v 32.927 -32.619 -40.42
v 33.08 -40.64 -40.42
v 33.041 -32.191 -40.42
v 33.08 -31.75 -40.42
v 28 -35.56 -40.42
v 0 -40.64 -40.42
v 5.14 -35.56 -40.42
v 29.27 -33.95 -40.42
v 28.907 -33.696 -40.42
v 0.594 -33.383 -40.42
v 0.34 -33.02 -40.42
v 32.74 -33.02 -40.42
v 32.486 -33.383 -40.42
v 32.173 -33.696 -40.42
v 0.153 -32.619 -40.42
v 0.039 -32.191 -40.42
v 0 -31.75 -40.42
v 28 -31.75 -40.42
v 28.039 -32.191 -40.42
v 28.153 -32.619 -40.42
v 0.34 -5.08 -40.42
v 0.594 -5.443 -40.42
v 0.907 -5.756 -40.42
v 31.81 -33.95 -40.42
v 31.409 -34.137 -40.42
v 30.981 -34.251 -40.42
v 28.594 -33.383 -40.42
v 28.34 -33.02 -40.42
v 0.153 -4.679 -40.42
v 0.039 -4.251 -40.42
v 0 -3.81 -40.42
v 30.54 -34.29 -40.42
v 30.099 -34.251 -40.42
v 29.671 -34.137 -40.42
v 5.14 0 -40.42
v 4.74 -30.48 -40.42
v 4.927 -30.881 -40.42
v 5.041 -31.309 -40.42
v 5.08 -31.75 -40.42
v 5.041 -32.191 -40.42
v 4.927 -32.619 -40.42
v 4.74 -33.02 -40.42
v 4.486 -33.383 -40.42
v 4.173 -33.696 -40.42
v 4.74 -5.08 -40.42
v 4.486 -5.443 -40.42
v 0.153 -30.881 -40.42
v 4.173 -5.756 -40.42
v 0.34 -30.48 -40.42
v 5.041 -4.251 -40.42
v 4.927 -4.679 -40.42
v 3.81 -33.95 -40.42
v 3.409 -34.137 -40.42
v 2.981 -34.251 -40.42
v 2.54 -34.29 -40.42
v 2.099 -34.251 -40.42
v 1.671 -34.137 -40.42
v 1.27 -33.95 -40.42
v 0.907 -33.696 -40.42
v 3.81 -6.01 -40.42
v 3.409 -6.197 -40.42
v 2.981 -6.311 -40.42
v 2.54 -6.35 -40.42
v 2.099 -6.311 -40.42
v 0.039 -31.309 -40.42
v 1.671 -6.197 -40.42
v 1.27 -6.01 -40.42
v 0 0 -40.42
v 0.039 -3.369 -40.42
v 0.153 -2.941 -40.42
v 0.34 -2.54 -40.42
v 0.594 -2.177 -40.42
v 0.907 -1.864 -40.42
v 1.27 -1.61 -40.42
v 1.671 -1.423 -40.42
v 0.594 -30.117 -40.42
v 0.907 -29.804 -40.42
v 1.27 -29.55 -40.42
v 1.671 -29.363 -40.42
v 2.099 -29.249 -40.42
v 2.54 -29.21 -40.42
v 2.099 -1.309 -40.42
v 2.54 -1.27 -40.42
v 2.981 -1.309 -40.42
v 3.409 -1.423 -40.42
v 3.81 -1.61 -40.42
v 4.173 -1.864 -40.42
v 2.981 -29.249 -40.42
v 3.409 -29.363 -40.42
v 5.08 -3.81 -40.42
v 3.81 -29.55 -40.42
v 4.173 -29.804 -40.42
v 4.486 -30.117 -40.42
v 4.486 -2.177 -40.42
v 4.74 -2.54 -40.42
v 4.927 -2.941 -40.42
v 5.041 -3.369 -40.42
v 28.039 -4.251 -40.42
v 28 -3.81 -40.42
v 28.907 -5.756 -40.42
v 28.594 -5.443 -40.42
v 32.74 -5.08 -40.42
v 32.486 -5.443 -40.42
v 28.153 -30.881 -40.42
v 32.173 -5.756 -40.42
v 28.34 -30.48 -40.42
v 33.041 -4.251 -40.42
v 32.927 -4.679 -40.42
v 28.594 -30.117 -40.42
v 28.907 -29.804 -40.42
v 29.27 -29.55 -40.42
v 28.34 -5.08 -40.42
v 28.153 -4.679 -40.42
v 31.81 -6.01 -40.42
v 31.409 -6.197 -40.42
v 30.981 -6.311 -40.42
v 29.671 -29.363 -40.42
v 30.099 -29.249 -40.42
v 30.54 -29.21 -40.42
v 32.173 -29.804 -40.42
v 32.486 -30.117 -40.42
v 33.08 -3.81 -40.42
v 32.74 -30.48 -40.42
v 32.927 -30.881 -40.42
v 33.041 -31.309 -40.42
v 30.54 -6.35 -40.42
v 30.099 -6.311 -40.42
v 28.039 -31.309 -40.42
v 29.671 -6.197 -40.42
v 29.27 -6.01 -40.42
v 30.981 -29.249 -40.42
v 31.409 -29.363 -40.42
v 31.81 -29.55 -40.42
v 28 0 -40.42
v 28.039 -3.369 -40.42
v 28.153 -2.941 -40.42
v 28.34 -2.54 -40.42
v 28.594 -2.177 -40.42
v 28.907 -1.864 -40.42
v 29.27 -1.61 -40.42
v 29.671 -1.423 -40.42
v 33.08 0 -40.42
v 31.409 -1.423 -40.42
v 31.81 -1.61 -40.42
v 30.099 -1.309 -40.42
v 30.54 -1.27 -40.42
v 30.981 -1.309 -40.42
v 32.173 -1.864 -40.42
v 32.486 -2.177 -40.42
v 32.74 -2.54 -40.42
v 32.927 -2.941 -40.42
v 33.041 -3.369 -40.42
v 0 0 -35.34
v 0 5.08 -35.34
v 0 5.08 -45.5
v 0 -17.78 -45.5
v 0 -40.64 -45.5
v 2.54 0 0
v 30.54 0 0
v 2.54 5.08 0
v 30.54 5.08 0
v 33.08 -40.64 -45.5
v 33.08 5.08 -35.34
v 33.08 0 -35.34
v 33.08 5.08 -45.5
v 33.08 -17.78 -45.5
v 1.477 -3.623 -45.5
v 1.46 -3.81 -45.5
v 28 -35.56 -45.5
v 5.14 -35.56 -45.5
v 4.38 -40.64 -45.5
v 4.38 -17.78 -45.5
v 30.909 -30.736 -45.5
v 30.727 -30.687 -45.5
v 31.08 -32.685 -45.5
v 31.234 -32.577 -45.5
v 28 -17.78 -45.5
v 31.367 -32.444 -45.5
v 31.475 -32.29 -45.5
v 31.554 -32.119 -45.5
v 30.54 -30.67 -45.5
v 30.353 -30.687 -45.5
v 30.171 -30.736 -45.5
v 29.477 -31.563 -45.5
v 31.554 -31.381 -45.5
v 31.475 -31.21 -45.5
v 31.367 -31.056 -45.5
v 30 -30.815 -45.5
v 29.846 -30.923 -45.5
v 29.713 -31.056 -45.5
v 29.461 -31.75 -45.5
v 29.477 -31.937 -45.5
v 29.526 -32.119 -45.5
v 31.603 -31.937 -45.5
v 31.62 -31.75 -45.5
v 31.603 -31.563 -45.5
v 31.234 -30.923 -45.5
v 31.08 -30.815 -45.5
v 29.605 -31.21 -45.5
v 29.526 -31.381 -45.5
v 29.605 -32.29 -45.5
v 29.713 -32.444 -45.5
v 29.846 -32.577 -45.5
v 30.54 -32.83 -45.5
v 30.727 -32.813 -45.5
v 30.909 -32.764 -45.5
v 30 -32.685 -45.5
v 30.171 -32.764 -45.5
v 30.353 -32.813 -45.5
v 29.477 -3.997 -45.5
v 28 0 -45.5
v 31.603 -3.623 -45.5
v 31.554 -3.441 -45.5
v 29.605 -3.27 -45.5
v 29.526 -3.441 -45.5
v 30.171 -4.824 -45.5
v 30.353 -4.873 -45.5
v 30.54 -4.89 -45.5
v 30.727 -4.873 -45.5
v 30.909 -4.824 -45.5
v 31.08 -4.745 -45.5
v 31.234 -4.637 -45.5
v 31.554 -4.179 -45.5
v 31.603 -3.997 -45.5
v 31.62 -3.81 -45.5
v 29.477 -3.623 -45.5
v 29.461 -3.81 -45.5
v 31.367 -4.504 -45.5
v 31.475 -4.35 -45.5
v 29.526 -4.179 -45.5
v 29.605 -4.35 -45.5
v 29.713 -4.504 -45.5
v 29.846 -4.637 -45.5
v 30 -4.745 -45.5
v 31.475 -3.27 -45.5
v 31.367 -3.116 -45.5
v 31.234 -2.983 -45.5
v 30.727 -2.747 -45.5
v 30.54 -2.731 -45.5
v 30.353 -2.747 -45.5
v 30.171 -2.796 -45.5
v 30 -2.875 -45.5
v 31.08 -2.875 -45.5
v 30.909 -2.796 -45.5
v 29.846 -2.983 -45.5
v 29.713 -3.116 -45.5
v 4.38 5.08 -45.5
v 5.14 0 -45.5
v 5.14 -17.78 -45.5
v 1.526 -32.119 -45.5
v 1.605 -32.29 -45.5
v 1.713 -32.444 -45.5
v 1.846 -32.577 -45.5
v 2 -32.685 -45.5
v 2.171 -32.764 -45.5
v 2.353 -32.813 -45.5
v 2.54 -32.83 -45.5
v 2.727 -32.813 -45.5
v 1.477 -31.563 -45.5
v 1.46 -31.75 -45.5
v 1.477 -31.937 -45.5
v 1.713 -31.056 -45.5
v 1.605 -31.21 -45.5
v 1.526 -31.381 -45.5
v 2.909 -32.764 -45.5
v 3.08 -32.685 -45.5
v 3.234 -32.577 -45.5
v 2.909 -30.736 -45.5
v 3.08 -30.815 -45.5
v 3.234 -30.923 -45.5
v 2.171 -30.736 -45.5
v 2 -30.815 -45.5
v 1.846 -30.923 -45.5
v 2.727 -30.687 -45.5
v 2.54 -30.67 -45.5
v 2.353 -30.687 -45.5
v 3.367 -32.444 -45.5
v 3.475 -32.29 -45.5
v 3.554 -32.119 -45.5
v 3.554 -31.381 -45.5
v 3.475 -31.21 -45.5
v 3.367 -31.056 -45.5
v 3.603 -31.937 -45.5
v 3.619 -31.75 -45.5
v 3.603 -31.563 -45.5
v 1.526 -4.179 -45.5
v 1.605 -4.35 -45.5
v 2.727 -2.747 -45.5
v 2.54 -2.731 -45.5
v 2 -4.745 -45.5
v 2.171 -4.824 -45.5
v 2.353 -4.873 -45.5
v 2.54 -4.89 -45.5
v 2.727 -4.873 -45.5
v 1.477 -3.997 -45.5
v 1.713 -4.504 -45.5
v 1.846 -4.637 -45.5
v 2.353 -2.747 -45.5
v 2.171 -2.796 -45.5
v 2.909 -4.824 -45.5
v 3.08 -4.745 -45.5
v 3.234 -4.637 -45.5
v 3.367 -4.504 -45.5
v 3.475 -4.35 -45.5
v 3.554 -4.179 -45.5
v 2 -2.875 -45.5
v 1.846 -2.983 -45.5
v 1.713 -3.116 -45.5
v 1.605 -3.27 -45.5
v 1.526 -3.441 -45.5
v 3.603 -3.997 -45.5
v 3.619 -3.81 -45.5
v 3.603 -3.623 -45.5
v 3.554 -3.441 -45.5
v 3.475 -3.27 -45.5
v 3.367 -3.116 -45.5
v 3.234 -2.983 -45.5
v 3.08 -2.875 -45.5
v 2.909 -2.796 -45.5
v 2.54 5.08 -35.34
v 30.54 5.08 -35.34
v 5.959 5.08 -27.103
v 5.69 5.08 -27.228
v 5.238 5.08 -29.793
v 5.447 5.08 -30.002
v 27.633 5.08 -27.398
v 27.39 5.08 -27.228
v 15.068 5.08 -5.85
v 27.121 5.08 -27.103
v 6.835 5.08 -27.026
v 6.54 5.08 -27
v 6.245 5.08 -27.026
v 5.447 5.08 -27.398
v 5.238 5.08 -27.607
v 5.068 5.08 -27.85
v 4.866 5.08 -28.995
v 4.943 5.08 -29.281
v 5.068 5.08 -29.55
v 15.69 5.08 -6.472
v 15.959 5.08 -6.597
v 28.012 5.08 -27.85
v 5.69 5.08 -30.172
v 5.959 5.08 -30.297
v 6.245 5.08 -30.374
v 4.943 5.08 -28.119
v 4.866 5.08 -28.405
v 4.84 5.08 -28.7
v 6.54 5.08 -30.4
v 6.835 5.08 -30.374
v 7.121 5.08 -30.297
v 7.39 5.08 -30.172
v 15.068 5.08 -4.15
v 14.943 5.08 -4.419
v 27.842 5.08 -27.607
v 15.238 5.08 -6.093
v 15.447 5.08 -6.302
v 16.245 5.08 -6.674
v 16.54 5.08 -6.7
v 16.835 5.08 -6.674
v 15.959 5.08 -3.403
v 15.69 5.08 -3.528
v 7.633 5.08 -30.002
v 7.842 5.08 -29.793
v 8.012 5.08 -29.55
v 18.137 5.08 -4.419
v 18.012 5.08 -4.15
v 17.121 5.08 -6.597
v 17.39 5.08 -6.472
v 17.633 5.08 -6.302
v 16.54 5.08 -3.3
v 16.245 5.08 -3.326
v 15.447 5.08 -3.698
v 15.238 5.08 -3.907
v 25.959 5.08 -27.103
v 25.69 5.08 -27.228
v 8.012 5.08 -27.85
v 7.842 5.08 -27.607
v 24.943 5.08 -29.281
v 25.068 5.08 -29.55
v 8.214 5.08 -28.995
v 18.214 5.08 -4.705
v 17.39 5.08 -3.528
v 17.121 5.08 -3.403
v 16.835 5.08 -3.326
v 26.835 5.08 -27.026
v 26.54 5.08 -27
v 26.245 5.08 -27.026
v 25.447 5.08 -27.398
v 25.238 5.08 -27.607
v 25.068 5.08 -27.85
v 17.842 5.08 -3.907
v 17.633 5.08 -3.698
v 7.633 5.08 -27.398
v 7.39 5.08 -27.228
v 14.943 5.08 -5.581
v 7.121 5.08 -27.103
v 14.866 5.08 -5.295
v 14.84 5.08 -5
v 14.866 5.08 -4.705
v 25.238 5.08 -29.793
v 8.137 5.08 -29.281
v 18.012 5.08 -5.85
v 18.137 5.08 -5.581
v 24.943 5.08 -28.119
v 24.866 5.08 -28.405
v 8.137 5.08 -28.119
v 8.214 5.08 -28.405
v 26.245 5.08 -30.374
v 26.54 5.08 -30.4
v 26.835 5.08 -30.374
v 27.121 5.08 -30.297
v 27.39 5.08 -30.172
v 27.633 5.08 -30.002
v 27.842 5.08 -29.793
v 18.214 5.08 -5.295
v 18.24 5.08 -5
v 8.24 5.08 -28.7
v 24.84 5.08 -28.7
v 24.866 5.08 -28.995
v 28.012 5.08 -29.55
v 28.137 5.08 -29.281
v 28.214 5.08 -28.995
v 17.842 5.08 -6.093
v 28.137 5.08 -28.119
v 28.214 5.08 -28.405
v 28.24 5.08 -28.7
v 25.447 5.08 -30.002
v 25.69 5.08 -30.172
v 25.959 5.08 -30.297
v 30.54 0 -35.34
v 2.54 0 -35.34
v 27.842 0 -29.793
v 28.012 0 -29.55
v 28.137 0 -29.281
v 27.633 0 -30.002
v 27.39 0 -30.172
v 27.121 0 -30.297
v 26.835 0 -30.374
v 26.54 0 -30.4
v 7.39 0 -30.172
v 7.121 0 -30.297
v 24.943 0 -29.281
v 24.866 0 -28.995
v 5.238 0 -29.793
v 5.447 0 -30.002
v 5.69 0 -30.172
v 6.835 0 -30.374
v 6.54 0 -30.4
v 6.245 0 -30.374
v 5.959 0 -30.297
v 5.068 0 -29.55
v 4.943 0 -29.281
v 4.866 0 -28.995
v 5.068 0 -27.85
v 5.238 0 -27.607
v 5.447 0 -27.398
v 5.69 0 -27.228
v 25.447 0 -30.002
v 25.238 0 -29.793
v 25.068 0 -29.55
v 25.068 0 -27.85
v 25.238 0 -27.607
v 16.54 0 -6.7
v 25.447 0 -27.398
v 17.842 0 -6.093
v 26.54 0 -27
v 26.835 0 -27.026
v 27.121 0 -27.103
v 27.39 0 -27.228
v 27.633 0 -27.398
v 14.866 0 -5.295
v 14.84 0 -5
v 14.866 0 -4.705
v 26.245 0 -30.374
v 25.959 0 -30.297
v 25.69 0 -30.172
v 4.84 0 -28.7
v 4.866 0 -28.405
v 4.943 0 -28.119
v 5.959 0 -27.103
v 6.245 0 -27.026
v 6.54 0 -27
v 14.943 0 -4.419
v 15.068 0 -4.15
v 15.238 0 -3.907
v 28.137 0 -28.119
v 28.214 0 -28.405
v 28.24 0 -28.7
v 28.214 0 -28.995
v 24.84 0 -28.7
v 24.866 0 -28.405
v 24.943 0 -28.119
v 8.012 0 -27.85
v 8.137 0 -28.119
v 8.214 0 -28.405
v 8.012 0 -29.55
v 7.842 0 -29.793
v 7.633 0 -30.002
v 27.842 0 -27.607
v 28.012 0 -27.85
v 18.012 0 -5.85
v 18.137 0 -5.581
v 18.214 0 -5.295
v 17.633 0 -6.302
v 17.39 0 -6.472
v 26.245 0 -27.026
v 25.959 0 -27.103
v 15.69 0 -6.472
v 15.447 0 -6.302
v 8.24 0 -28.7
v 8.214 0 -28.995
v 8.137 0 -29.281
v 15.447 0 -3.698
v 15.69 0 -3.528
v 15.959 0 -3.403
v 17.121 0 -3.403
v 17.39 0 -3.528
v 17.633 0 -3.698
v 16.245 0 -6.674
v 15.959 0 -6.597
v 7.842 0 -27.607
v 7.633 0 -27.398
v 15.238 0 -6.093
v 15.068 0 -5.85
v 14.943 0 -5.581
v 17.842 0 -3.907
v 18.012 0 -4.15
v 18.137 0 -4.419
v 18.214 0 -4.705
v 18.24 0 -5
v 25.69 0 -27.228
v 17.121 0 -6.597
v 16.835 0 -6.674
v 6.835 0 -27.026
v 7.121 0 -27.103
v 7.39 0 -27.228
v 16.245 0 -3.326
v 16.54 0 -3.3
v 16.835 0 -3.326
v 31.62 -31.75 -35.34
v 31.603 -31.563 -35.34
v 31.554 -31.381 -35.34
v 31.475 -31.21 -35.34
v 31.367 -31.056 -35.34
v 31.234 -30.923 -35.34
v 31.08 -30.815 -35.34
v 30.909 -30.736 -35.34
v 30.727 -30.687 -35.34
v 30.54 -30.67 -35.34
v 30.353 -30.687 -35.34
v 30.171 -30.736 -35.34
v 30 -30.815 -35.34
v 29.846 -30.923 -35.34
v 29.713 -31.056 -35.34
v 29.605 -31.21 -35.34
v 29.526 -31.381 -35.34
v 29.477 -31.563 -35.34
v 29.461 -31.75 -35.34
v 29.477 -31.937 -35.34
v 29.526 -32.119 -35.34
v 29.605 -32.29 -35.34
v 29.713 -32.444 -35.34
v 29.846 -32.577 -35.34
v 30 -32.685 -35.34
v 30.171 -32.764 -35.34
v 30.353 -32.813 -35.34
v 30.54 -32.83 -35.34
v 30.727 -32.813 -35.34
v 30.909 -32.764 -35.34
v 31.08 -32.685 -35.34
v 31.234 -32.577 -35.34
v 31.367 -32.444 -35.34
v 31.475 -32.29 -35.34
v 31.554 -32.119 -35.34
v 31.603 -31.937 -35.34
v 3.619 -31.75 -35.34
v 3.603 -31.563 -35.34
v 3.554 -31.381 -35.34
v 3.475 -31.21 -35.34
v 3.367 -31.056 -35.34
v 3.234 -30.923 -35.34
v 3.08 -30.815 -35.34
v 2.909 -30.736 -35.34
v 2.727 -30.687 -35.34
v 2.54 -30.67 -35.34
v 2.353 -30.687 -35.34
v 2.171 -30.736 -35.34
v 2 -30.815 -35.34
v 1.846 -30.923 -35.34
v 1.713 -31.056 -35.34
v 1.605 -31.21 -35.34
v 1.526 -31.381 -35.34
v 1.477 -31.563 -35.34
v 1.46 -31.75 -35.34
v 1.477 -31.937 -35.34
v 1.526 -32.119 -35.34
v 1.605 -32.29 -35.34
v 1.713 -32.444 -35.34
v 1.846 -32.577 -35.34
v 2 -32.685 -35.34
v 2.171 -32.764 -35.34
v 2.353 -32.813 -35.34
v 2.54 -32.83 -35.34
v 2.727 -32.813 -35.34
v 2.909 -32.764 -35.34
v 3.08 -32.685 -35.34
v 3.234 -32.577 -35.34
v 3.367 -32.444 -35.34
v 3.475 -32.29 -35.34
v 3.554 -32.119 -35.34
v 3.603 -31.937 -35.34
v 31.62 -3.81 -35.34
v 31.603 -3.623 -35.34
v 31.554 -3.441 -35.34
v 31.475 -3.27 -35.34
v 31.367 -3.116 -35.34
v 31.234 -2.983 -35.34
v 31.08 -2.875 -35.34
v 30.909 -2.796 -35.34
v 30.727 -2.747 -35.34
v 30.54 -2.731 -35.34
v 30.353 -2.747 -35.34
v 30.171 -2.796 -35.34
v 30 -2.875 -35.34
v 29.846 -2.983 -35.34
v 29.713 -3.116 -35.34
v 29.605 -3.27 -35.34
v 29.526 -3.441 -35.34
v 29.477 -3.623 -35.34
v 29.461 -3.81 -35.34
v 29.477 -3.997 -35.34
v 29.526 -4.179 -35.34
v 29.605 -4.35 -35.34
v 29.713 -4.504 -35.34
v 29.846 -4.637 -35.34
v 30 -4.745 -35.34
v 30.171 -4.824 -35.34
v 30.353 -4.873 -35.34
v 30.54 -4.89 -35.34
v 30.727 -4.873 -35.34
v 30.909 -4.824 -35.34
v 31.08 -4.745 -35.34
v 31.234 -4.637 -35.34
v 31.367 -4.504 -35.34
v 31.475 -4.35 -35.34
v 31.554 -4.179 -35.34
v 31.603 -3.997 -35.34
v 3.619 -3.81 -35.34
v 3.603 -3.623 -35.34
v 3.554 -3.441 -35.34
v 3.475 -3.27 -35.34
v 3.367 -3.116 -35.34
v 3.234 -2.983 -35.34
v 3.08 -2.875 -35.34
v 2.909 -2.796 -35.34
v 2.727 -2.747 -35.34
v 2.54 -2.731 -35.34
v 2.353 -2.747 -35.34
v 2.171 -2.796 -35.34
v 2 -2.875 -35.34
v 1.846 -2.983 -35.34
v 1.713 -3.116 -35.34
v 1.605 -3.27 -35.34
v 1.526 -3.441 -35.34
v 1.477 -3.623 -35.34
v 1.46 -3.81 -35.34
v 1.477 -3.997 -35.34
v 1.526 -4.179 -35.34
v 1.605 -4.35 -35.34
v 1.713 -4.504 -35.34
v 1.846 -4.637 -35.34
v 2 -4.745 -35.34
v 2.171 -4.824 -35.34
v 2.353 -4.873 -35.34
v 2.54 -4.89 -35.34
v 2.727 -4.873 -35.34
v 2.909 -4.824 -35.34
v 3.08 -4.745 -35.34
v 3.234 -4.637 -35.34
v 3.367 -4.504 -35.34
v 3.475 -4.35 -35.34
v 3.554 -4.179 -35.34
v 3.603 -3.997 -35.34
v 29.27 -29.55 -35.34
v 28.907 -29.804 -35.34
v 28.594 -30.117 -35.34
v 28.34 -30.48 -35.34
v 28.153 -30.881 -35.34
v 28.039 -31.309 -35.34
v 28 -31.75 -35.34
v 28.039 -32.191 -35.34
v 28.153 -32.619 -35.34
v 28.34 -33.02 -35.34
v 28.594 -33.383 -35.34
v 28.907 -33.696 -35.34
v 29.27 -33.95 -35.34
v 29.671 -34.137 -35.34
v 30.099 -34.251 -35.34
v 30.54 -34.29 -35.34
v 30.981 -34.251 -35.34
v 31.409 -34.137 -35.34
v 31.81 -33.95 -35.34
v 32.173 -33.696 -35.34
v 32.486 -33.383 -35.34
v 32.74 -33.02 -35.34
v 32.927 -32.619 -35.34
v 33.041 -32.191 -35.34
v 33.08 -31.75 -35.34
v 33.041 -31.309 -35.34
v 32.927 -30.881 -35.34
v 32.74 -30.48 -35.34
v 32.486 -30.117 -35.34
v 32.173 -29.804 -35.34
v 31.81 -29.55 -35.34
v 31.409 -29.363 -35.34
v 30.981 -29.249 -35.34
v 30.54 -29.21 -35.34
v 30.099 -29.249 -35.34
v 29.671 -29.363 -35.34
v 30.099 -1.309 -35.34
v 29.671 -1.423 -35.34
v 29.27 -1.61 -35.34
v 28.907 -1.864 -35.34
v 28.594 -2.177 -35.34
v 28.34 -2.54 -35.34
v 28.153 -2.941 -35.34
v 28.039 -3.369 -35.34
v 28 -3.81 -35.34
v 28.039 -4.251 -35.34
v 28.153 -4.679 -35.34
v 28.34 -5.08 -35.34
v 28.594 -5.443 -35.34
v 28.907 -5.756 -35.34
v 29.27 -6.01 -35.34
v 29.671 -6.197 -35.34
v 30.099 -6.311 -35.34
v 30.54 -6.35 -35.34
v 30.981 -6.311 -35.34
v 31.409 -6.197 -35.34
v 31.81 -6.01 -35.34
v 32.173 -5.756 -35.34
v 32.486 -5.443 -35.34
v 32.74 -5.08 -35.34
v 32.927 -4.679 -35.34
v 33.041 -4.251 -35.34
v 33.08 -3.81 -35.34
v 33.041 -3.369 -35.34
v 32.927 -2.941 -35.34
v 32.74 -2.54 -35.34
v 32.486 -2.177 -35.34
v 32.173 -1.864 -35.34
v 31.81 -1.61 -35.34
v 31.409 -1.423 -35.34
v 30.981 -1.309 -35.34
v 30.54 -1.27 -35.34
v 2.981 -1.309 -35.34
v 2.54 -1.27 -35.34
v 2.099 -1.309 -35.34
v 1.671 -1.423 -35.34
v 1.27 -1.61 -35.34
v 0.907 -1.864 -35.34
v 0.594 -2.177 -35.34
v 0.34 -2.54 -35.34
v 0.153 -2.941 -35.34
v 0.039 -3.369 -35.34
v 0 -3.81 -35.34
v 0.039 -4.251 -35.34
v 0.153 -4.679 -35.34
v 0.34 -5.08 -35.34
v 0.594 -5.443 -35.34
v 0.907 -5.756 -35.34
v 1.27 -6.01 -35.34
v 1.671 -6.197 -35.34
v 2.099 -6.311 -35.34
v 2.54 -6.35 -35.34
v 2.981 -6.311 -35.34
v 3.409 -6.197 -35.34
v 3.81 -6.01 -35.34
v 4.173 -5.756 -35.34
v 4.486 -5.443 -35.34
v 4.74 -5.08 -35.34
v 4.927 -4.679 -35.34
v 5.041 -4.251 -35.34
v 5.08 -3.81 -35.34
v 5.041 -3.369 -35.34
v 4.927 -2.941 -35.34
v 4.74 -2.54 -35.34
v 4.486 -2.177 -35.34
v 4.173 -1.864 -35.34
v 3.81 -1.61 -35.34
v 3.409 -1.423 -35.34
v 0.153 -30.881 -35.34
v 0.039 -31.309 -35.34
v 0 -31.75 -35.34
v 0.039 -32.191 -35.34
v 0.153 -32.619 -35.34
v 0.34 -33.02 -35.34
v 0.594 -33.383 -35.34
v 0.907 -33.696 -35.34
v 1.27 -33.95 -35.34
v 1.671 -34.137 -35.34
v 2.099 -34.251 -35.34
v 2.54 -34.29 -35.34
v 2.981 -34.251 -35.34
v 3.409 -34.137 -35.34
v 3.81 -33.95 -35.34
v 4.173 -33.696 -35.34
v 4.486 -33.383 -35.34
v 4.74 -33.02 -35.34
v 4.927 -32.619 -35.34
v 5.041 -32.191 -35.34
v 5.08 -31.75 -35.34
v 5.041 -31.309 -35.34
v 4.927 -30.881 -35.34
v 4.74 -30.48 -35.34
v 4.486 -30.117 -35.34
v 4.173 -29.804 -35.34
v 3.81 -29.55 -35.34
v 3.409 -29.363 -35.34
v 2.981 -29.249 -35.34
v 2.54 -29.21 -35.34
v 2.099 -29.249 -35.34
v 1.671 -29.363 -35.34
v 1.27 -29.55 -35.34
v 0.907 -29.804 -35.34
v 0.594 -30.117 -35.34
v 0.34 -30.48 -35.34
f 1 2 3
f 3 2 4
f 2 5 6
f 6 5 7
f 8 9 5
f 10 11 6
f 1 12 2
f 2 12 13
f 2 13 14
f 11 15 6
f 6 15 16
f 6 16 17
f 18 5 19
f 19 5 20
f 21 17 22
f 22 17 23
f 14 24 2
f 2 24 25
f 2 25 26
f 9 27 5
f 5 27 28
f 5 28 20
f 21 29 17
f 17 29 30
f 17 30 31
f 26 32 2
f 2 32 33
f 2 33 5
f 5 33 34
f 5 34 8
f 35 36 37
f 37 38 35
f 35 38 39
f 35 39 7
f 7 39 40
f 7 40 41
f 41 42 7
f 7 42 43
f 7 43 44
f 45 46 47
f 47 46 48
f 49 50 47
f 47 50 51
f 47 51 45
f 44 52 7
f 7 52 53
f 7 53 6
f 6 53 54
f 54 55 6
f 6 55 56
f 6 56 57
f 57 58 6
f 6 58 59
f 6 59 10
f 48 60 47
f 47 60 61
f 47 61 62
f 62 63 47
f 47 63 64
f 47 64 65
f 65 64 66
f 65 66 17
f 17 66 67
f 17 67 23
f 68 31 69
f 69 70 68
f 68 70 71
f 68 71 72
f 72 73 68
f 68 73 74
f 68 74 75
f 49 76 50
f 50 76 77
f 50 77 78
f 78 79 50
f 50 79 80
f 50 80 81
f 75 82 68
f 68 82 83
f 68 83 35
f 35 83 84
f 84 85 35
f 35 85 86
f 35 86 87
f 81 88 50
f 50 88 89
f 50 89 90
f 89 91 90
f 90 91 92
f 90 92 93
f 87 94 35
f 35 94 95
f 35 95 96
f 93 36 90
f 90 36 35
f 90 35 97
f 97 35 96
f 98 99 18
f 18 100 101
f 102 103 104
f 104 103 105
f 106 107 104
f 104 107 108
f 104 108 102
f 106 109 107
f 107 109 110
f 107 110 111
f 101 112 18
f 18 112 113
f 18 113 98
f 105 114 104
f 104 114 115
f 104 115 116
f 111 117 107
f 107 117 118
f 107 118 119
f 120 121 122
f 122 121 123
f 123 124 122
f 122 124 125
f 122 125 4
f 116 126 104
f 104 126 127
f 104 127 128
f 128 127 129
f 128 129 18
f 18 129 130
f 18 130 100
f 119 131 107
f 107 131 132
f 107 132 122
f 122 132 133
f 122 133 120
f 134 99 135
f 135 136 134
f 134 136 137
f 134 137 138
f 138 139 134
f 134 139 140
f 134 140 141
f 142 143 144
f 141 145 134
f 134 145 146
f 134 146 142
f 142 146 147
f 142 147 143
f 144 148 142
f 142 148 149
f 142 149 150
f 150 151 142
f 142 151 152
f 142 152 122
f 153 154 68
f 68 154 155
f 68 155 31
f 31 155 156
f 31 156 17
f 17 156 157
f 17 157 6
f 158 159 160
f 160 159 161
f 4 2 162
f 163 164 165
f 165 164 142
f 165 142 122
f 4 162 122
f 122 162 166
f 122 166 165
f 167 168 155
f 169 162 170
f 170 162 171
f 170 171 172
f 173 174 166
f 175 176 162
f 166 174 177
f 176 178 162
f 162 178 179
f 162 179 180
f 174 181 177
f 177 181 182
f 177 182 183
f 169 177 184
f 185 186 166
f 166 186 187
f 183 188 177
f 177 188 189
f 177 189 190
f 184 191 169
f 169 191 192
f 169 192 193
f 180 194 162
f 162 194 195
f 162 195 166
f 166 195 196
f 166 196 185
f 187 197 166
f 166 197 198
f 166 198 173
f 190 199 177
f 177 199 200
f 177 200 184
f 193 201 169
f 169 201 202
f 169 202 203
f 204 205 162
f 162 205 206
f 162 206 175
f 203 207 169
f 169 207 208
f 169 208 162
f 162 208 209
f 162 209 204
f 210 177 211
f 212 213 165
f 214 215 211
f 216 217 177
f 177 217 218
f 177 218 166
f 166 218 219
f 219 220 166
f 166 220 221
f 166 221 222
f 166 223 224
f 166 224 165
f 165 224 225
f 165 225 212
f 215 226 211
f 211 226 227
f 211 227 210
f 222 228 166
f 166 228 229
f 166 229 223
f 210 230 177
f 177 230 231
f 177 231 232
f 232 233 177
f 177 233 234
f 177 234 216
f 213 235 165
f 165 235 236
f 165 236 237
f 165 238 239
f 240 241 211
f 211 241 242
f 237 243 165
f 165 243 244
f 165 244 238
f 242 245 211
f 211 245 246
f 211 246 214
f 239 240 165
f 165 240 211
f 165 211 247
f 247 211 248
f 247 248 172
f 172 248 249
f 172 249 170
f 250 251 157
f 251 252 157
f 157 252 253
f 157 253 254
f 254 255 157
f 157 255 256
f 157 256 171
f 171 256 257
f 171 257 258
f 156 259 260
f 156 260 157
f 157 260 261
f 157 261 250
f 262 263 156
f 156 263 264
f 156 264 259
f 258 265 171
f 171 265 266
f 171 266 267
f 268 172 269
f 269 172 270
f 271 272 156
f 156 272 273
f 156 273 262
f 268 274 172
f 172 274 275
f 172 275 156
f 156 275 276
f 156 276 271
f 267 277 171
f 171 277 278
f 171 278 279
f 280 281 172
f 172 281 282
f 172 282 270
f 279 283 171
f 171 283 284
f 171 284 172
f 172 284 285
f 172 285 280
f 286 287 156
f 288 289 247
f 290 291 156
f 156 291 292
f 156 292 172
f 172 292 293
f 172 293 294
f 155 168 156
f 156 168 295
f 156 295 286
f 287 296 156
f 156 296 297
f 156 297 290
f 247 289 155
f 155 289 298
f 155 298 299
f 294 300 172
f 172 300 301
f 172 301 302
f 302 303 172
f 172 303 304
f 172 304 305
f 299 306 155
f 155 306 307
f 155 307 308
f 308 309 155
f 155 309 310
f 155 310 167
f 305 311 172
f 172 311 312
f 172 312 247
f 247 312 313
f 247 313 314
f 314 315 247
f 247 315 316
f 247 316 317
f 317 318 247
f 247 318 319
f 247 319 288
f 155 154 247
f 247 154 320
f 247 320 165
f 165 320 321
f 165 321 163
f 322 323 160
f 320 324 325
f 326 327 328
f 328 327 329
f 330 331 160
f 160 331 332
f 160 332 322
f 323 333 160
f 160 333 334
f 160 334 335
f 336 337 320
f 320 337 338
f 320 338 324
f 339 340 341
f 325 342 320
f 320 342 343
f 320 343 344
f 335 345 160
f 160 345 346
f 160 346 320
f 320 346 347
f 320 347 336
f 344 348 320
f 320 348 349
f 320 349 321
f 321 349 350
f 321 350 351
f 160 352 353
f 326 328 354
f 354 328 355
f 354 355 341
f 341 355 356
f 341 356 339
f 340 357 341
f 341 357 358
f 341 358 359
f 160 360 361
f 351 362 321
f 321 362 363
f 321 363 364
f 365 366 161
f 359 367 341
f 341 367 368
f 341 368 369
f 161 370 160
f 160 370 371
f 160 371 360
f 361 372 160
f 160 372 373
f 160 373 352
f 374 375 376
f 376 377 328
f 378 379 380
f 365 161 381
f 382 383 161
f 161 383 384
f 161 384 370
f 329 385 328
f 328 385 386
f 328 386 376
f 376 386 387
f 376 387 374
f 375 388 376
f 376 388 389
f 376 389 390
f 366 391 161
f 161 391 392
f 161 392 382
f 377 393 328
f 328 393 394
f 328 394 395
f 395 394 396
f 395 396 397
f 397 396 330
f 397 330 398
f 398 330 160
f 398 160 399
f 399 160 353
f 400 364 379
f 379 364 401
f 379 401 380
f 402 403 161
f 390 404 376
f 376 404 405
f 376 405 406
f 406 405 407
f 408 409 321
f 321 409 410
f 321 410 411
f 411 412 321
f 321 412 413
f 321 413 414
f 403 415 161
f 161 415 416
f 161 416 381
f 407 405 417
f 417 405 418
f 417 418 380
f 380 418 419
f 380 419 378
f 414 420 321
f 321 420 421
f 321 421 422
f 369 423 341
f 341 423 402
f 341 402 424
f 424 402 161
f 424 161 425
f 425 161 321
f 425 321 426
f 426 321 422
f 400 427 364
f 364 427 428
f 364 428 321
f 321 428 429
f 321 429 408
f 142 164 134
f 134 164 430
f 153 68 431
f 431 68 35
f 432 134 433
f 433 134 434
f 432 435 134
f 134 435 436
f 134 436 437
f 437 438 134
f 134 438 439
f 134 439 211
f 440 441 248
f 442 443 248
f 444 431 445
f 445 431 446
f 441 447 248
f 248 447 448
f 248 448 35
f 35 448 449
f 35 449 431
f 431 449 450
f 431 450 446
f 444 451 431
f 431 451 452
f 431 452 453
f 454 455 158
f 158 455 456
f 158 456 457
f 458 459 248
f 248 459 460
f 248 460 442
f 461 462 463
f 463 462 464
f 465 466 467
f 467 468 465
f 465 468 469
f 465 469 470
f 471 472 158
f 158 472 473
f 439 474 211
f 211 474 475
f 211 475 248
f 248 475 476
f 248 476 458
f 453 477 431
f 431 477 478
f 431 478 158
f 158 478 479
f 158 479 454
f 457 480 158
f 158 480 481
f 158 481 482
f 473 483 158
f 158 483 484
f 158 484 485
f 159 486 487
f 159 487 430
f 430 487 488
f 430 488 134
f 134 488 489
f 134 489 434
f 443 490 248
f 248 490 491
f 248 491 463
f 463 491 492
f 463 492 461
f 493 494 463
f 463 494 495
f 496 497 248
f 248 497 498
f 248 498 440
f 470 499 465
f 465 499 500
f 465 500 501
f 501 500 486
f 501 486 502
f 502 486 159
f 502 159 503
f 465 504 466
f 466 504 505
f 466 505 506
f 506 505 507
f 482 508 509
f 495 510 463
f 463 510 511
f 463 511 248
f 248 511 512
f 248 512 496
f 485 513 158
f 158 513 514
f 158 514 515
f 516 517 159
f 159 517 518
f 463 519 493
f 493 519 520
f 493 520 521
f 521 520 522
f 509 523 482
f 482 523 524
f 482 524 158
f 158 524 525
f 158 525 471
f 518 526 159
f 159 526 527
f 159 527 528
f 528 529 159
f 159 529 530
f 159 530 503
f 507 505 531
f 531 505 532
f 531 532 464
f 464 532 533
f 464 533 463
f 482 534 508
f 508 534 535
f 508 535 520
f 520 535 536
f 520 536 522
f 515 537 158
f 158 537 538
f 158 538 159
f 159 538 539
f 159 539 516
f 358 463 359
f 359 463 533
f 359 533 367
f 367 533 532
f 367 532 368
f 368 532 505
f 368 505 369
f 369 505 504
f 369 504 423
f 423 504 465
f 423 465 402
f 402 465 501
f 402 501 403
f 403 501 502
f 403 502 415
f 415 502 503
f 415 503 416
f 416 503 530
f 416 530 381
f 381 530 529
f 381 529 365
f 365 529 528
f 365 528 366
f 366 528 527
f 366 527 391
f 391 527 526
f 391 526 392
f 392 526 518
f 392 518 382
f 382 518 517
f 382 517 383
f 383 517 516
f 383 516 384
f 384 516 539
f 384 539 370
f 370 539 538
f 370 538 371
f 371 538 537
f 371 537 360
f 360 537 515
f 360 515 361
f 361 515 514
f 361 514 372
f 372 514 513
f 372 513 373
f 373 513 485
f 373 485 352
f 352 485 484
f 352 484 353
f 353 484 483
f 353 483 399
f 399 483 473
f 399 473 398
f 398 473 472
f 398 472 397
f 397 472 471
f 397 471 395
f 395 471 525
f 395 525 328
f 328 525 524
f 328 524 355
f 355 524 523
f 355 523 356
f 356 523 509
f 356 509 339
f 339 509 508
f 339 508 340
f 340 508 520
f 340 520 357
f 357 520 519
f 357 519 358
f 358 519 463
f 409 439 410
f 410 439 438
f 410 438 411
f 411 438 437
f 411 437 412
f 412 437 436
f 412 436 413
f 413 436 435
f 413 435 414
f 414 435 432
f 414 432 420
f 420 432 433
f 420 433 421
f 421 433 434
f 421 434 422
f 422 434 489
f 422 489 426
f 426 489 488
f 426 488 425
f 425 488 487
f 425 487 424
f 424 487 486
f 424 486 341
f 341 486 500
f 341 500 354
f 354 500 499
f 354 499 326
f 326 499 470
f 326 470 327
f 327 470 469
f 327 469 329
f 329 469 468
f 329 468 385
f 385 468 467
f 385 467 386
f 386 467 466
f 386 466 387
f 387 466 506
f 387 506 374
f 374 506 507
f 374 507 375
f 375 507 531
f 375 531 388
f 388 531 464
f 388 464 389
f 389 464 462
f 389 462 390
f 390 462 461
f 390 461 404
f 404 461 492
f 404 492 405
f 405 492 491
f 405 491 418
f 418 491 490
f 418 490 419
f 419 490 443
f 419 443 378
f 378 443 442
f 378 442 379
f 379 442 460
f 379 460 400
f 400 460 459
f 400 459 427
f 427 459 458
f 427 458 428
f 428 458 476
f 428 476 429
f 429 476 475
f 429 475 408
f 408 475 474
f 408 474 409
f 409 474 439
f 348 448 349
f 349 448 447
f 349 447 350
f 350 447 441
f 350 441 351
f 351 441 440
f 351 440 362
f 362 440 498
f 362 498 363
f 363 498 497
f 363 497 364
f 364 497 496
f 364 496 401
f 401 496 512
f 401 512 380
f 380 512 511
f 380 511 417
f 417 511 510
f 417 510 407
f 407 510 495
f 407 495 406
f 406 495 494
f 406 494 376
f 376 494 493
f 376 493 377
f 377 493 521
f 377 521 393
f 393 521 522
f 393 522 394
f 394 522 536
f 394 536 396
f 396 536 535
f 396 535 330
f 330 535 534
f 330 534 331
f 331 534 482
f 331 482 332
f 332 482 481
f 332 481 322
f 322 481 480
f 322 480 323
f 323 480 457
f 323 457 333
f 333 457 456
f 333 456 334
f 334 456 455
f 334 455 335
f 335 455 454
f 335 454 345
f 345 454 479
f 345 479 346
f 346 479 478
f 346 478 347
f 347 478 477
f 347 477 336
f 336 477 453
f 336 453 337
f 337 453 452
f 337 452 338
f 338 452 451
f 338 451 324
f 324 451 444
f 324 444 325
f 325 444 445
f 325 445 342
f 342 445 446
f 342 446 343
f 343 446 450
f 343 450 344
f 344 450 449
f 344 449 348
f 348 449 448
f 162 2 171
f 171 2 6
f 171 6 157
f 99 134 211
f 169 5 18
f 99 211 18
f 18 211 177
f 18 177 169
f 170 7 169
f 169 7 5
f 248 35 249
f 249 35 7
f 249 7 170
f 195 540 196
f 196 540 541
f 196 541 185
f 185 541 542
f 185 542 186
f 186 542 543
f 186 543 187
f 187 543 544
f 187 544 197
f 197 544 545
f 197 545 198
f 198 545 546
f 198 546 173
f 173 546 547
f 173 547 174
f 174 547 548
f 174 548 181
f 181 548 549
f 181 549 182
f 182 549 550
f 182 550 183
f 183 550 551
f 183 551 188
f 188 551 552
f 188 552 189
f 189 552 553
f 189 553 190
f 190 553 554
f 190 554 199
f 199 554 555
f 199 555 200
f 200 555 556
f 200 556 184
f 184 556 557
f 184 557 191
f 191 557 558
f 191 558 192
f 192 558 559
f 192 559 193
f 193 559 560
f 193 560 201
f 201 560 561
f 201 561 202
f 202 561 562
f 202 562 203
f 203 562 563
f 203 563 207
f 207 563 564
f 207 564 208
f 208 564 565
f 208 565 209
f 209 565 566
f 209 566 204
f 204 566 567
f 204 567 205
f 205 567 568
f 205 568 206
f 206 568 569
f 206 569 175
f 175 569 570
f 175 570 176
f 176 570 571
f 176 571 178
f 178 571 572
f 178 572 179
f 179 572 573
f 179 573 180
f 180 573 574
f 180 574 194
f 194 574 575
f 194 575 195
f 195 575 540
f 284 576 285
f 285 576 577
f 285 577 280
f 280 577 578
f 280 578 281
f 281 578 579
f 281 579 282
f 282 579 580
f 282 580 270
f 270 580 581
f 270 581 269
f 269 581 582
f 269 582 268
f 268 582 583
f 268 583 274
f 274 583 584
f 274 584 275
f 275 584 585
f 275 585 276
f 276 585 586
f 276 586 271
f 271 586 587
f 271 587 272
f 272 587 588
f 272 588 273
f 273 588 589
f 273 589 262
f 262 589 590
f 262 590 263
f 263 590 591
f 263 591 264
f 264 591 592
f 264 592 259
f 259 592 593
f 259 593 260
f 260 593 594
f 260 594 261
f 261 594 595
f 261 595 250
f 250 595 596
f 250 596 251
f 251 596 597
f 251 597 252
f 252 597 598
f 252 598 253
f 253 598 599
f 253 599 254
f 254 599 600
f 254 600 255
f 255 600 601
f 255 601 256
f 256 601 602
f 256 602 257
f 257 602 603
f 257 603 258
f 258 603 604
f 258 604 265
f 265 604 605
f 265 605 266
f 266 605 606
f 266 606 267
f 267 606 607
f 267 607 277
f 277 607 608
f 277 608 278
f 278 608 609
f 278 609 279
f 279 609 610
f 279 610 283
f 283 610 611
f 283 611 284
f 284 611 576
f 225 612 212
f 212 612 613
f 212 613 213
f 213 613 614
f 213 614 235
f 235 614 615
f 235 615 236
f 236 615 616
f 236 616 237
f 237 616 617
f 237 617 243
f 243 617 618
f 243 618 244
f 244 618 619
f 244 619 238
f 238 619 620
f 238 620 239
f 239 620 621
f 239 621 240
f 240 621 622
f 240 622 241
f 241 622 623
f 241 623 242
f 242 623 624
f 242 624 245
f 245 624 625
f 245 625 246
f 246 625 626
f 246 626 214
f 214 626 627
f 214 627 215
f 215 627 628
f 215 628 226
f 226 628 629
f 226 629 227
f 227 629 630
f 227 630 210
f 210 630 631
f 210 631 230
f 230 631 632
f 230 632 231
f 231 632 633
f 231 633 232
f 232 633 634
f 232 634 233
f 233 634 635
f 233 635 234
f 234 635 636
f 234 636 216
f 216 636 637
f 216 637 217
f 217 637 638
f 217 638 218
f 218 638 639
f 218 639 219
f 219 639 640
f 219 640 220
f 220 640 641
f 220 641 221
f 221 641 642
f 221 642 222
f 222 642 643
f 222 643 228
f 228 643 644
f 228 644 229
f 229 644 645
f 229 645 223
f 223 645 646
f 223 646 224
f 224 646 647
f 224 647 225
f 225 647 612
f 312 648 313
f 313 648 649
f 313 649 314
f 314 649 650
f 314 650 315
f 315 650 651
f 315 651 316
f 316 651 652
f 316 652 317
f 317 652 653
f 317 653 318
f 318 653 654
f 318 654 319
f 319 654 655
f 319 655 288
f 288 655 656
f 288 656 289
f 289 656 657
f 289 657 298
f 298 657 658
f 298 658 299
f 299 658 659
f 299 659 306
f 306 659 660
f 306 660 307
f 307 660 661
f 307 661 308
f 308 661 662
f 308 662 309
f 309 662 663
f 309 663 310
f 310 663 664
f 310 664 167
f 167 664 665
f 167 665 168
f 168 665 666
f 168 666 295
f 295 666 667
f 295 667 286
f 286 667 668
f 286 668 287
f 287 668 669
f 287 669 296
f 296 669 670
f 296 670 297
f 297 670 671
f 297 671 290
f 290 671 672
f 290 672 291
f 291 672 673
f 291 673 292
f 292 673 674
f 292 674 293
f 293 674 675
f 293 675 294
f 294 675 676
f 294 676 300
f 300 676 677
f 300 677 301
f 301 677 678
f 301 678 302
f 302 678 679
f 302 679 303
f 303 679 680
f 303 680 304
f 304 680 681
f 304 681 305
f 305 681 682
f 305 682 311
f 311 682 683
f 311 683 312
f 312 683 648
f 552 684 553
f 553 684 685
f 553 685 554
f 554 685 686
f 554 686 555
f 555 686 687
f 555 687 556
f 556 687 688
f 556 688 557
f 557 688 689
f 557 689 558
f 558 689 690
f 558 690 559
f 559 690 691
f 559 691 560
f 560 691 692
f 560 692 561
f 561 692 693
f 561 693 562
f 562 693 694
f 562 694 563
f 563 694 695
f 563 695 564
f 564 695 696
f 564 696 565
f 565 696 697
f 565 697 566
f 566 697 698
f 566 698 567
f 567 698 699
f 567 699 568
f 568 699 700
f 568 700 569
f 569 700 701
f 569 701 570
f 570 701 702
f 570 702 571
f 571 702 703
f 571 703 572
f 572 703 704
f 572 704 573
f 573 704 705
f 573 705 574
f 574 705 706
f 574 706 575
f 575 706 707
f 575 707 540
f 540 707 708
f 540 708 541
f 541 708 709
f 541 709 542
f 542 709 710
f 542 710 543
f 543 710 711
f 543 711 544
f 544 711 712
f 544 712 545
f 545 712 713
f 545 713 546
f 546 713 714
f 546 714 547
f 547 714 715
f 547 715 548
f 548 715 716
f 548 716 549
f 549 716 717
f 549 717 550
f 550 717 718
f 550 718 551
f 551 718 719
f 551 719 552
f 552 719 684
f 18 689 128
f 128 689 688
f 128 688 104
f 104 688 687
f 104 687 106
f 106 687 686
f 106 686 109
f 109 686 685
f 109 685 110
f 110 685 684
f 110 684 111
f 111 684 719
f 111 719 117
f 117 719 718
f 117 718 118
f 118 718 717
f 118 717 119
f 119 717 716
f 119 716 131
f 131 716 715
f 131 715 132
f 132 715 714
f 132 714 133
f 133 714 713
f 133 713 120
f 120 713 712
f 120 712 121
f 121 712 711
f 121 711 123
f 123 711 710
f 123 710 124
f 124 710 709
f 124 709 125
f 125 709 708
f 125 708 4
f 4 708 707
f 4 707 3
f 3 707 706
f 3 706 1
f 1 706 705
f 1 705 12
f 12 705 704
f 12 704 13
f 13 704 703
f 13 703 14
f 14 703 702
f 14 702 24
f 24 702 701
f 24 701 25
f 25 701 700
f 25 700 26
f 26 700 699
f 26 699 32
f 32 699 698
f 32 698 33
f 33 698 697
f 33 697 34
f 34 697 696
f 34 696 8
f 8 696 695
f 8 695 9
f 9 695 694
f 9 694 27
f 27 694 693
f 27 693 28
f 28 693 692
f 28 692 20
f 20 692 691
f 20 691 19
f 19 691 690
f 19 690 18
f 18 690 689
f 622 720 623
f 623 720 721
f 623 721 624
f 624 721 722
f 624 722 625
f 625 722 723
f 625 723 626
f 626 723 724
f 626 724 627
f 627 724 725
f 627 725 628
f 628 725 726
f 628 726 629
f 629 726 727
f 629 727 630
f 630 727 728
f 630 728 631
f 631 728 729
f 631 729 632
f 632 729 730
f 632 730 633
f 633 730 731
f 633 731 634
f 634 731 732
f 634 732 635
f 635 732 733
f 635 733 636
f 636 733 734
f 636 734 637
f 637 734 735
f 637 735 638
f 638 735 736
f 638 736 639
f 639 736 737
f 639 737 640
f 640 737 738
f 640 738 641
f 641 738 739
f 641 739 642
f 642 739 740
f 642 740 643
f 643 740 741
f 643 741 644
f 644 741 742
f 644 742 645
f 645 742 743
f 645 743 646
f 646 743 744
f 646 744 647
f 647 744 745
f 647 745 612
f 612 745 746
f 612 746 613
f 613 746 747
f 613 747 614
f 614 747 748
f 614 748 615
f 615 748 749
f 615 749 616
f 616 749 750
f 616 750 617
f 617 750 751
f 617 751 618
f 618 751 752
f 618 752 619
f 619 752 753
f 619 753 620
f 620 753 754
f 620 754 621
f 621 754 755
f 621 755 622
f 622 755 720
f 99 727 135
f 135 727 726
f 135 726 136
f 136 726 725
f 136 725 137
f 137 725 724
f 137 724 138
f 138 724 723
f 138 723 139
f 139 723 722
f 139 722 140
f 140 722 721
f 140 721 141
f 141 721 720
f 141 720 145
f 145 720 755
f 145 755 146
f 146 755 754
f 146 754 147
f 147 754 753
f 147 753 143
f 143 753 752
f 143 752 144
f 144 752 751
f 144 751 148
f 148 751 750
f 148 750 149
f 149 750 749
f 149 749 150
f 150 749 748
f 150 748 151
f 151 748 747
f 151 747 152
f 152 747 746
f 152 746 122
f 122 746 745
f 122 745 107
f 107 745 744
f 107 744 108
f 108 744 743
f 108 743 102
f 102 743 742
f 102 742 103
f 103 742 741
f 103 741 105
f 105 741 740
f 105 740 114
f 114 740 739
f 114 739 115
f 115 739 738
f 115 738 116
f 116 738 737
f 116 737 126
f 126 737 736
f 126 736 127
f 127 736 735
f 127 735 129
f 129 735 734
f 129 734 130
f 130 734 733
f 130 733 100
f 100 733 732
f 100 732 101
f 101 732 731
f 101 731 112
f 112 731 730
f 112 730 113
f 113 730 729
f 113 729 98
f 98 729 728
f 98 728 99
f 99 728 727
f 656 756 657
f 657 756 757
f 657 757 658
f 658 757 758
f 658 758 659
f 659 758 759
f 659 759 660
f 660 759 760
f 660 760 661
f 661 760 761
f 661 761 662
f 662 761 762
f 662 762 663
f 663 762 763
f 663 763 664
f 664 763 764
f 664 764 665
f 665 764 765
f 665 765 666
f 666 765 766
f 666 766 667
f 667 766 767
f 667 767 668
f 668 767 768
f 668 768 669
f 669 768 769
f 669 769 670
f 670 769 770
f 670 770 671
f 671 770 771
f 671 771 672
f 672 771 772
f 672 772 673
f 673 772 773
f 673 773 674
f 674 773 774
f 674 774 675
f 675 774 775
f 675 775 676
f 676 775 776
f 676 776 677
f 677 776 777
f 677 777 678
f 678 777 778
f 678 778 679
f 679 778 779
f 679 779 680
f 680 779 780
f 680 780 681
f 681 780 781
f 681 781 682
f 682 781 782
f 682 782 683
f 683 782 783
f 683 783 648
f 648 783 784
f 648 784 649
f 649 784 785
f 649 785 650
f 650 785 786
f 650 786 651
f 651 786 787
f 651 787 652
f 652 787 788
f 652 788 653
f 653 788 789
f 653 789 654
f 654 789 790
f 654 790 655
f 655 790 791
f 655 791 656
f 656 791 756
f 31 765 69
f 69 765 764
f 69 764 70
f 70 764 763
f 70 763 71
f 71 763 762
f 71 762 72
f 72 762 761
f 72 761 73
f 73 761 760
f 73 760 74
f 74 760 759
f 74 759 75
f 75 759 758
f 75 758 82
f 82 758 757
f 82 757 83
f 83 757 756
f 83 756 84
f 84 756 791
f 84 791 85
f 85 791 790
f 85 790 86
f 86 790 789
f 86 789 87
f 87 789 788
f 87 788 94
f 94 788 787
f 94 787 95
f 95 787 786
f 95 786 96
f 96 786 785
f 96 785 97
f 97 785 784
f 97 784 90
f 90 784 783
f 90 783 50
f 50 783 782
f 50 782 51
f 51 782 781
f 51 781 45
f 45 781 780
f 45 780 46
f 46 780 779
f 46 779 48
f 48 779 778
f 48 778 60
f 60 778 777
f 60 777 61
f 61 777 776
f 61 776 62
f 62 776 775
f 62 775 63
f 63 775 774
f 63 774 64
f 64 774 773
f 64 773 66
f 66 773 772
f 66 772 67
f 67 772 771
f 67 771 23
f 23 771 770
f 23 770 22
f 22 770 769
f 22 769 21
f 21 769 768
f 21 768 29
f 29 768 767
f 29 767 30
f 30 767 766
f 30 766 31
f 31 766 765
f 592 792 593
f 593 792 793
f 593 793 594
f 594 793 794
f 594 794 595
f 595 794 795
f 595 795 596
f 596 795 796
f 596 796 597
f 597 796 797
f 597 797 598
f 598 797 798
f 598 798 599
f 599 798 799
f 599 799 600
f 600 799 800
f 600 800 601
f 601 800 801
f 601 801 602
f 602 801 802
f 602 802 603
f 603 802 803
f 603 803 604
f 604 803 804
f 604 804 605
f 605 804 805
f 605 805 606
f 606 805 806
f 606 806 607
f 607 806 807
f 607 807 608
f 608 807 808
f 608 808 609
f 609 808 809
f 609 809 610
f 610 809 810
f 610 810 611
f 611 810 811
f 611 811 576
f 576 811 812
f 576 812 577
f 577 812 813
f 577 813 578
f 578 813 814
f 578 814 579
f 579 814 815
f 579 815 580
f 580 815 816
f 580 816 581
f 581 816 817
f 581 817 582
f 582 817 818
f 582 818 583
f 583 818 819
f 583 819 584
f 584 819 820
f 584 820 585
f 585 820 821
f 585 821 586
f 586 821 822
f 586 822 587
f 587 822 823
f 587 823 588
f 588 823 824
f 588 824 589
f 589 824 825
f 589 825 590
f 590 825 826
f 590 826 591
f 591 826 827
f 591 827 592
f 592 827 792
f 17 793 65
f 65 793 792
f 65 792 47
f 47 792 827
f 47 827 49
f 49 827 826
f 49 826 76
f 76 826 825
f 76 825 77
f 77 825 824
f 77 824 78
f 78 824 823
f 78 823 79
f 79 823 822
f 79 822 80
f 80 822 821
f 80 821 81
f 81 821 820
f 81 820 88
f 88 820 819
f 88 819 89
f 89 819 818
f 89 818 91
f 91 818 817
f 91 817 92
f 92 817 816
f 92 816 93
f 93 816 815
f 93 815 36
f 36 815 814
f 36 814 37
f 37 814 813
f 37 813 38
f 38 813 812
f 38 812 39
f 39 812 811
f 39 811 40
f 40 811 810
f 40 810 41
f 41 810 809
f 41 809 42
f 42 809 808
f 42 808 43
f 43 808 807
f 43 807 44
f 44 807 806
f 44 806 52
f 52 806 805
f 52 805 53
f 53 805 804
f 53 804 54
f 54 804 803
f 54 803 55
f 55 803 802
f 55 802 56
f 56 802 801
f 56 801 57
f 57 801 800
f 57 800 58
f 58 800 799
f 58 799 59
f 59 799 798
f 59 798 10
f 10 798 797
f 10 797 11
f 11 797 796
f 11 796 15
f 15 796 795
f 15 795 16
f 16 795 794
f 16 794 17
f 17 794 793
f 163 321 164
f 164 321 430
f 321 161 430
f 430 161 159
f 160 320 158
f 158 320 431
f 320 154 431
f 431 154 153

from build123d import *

# Parameters (mm, degrees)
SKETCH1_W               = 33.08
SKETCH1_H               = 45.5
BOSS_EXTRUDE1_DEPTH     = 5.08
SKETCH2_R               = 1.7
CUT_EXTRUDE1_DEPTH      = 6.08
SKETCH3_W               = 33.08
SKETCH3_H               = 5.08
BOSS_EXTRUDE2_DEPTH     = 40.64
SKETCH4_R               = 1.0795
SKETCH4_W               = 22.86
SKETCH4_H               = 35.56
CUT_EXTRUDE2_DEPTH      = 41.42
CUT_EXTRUDE2_DEPTH_BACK = 6.08
SKETCH5_R               = 2.54
SKETCH5_R_2             = 1.0795
BOSS_EXTRUDE3_DEPTH     = 5.08
SKETCH6_W               = 2.54
SKETCH6_H               = 35.34
CUT_EXTRUDE3_DEPTH      = 6.08


with BuildPart() as part:
    # Sketch1 → Boss-Extrude1 (new body)
    with BuildSketch(Plane(origin=(0, 0, 0), x_dir=(1, 0, 0), z_dir=(0, 1, 0))):
        with Locations((16.54, 22.75)):
            Rectangle(SKETCH1_W, SKETCH1_H)
    extrude(amount=BOSS_EXTRUDE1_DEPTH)

    # Sketch2 → Cut-Extrude1 (cut, through all)
    with BuildSketch(Plane.XZ):
        with Locations((6.54, -28.7)):
            Circle(SKETCH2_R)
        with Locations((26.54, -28.7)):
            Circle(SKETCH2_R)
        with Locations((16.54, -5)):
            Circle(SKETCH2_R)
    extrude(amount=-CUT_EXTRUDE1_DEPTH, mode=Mode.SUBTRACT)

    # Sketch3 → Boss-Extrude2 (add)
    with BuildSketch(Plane.XZ):
        with Locations((16.54, -42.96)):
            Rectangle(SKETCH3_W, SKETCH3_H)
    extrude(amount=BOSS_EXTRUDE2_DEPTH)

    # Sketch4 → Cut-Extrude2 (cut, two sides)
    with BuildSketch(Plane.XY.offset(-40.42)) as cut_extrude2_sk:
        with Locations((30.54, -31.75)):
            Circle(SKETCH4_R)
        with Locations((2.54, -31.75)):
            Circle(SKETCH4_R)
        with Locations((30.54, -3.81)):
            Circle(SKETCH4_R)
        with Locations((2.54, -3.81)):
            Circle(SKETCH4_R)
        with Locations((16.57, -17.78)):
            Rectangle(SKETCH4_W, SKETCH4_H)
    extrude(amount=CUT_EXTRUDE2_DEPTH, mode=Mode.SUBTRACT)
    extrude(cut_extrude2_sk.sketch, amount=-CUT_EXTRUDE2_DEPTH_BACK, mode=Mode.SUBTRACT)

    # Sketch5 → Boss-Extrude3 (add)
    with BuildSketch(Plane.XY.offset(-40.42)):
        with Locations((30.54, -31.75)):
            Circle(SKETCH5_R)
        with Locations((30.54, -31.75)):
            Circle(SKETCH5_R_2, mode=Mode.SUBTRACT)
        with Locations((30.54, -3.81)):
            Circle(SKETCH5_R)
        with Locations((30.54, -3.81)):
            Circle(SKETCH5_R_2, mode=Mode.SUBTRACT)
        with Locations((2.54, -3.81)):
            Circle(SKETCH5_R)
        with Locations((2.54, -3.81)):
            Circle(SKETCH5_R_2, mode=Mode.SUBTRACT)
        with Locations((2.54, -31.75)):
            Circle(SKETCH5_R)
        with Locations((2.54, -31.75)):
            Circle(SKETCH5_R_2, mode=Mode.SUBTRACT)
    extrude(amount=BOSS_EXTRUDE3_DEPTH)

    # Sketch6 → Cut-Extrude3 (cut, through all)
    with BuildSketch(Plane.XZ):
        with Locations((1.27, -17.67)):
            Rectangle(SKETCH6_W, SKETCH6_H)
        with Locations((31.81, -17.67)):
            Rectangle(SKETCH6_W, SKETCH6_H)
    extrude(amount=-CUT_EXTRUDE3_DEPTH, mode=Mode.SUBTRACT)


solid = part.part
